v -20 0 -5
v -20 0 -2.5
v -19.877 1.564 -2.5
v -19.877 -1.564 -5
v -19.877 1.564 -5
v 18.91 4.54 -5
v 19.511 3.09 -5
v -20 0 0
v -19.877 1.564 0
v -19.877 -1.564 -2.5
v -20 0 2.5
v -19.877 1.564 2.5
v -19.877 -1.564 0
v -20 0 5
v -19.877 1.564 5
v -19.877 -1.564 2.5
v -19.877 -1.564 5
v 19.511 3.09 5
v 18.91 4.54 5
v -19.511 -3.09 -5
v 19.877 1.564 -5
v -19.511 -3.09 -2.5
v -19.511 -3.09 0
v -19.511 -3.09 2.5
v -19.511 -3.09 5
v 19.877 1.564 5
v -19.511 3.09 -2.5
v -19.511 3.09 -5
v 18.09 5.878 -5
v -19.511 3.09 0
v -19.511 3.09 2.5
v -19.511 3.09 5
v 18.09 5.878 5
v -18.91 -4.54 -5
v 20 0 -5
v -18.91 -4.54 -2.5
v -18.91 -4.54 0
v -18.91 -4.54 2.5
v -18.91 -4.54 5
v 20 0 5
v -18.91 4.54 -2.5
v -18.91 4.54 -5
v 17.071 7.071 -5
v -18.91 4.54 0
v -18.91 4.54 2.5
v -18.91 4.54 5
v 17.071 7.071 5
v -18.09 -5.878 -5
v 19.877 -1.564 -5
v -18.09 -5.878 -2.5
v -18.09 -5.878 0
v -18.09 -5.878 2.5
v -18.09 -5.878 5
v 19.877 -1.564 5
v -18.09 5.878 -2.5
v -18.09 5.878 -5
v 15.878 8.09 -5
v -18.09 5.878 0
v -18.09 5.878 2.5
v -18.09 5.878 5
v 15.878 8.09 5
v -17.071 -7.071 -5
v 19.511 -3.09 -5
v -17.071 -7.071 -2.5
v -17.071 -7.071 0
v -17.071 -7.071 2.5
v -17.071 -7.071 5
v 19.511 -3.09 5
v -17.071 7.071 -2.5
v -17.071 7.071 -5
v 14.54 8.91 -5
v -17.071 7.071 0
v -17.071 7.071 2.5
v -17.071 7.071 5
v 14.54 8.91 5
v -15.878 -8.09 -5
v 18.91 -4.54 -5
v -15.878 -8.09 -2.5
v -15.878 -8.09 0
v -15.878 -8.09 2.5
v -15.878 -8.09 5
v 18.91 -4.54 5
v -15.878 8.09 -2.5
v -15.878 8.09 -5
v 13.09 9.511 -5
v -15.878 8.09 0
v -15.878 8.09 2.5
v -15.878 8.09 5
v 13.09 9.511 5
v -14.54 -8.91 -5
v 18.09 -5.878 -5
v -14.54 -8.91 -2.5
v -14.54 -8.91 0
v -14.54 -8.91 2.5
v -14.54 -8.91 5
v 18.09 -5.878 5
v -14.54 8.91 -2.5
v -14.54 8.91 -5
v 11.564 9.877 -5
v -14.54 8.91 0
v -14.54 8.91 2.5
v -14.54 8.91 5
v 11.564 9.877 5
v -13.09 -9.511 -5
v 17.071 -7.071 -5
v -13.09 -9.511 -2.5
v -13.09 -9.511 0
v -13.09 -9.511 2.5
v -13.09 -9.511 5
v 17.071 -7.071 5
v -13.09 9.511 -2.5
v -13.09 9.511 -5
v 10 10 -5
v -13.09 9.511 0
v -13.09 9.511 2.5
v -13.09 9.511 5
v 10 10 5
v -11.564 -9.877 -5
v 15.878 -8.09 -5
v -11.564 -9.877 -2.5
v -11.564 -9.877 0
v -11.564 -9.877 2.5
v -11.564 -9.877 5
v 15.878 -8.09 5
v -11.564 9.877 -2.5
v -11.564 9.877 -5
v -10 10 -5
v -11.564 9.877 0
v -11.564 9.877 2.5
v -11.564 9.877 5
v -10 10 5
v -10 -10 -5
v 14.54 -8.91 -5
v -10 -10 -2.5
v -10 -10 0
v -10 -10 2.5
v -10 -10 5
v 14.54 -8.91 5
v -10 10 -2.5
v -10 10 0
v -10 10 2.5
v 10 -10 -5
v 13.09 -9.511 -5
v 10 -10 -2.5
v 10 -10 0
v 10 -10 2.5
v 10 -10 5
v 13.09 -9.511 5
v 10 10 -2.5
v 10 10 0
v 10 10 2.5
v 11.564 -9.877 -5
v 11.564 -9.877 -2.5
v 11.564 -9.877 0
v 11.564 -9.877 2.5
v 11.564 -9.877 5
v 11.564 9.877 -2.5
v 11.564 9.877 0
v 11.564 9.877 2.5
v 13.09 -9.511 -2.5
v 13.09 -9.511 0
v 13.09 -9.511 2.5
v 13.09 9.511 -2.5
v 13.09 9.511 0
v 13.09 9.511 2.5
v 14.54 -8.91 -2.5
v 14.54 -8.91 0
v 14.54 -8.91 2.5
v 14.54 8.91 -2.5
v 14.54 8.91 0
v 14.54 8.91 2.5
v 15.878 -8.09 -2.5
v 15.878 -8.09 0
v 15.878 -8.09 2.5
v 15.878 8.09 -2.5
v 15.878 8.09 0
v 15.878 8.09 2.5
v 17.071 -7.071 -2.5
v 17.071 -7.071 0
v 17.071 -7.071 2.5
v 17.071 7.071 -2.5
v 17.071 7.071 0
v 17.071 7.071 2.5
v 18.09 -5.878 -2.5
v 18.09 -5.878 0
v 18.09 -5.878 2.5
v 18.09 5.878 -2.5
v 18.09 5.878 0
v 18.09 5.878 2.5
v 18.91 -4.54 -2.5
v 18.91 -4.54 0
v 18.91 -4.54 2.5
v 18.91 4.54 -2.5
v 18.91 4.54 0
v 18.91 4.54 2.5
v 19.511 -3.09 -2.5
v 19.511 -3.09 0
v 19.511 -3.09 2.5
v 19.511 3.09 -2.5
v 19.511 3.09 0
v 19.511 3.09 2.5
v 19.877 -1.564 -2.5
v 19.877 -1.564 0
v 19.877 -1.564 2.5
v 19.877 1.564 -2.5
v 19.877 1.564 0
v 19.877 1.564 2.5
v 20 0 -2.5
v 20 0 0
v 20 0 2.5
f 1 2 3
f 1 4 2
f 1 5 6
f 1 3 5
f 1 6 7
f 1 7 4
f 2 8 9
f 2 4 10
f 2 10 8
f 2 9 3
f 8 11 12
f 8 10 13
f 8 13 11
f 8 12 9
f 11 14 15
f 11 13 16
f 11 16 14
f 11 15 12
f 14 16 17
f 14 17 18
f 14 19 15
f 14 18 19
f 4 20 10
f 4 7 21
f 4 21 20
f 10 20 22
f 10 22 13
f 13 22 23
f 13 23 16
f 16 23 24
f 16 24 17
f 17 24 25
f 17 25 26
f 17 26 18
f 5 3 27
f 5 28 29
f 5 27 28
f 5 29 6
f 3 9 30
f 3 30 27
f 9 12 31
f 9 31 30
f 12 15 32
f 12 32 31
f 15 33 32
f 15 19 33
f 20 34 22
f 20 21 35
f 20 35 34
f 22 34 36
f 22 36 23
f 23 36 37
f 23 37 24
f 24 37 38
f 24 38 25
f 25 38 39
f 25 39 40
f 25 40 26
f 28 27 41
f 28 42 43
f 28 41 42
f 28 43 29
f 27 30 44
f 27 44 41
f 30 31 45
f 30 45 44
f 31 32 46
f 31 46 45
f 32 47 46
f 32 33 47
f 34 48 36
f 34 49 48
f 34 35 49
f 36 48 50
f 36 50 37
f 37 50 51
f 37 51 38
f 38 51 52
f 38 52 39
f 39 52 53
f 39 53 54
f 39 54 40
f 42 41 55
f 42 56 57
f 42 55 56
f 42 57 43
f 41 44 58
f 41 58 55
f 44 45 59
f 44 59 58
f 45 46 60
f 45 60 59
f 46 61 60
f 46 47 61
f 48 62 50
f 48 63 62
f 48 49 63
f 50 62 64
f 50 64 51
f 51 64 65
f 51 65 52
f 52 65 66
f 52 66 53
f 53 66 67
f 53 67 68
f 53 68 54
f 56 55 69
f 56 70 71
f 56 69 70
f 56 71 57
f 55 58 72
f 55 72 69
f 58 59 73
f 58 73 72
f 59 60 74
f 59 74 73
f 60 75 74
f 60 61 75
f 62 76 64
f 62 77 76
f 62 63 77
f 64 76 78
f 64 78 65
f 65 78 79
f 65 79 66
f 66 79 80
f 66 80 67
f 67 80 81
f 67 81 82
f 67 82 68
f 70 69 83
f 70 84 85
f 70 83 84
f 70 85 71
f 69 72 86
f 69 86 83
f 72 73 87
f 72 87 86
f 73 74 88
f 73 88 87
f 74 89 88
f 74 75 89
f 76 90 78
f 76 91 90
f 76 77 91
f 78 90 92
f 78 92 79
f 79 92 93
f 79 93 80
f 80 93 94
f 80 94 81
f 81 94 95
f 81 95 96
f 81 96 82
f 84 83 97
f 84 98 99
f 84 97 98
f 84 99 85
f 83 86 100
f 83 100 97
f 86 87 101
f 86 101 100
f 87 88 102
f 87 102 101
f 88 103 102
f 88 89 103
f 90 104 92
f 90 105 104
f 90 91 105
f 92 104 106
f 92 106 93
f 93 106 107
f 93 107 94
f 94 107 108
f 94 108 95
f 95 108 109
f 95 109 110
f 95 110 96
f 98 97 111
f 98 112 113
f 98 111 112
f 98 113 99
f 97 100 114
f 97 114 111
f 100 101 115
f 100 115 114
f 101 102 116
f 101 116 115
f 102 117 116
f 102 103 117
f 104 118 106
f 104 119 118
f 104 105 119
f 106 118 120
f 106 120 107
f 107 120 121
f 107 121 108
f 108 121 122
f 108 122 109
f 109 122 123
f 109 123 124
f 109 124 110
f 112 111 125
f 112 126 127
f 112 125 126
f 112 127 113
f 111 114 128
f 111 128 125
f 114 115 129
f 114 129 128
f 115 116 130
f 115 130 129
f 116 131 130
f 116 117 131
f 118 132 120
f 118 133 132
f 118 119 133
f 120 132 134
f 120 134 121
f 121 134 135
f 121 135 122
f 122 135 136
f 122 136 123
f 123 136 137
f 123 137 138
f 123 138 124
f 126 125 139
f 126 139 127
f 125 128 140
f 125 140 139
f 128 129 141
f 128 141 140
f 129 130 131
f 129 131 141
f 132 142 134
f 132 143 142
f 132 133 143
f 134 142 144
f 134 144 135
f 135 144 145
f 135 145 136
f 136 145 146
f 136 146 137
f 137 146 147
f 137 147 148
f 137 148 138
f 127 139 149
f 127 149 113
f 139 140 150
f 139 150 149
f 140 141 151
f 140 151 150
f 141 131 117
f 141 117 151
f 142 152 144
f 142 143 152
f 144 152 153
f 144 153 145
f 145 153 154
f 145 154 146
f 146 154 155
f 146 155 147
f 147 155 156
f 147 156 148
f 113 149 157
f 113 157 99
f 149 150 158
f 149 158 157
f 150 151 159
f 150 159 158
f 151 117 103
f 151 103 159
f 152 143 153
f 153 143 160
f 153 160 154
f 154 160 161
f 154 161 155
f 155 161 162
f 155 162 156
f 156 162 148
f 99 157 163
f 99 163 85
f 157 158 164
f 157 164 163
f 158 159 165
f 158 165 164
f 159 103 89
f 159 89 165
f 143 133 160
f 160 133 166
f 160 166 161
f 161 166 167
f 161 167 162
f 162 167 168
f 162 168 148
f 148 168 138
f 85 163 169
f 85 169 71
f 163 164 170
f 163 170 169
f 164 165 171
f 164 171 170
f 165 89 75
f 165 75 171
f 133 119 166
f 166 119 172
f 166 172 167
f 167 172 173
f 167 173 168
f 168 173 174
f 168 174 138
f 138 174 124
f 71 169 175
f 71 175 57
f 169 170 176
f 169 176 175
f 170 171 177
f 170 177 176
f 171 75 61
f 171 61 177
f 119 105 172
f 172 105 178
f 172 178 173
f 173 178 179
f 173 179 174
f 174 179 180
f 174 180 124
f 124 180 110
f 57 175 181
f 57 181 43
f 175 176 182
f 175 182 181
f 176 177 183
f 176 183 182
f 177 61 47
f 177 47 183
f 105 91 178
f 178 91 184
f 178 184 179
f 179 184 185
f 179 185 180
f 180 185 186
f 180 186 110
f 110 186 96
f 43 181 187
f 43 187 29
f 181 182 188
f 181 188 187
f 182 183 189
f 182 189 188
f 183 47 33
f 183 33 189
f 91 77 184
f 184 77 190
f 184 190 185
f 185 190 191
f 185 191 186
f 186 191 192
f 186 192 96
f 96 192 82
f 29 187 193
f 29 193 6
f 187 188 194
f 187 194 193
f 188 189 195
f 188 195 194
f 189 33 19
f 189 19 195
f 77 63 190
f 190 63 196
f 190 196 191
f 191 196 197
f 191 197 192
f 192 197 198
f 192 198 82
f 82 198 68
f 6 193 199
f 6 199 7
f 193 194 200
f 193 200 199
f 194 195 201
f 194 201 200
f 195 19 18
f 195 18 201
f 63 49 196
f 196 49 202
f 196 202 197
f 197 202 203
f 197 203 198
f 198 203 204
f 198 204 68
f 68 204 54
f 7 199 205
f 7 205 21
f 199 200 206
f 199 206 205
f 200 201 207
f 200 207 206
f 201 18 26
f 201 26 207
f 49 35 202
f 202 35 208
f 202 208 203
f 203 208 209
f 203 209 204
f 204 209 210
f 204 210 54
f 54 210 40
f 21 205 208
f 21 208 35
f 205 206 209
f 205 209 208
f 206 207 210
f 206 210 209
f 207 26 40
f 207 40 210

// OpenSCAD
// Start: lazy_union
default_5_default_5();
// End: lazy_union

// Modules.

// 'PartMaterial undef-default - default 5.0'
module default_5_default_5() {
  // 'None : _combine_solids_and_holes'
  union() {
    // 'default : _combine_solids_and_holes'
    union() {
      // 'cage'
      %multmatrix(m=[[1.0, 0.0, 0.0, -20.0], [0.0, 1.0, 0.0, -10.0], [0.0, 0.0, 1.0, -5.0], [0.0, 0.0, 0.0, 1.0]]) {
        // 'cage'
        color(c=[0.0, 1.0, 0.35, 0.4]) {
          // 'cage : _combine_solids_and_holes'
          union() {
            // 'cage'
            cube(size=[40.0, 20.0, 10.0]);
          }
        }
      }
      // 'stadium'
      multmatrix(m=[[-1.0, 0.0, 0.0, 20.0], [0.0, -1.0, 0.0, 0.0], [0.0, 0.0, 1.0, -5.0], [0.0, 0.0, 0.0, 1.0]]) {
        // 'stadium : _combine_solids_and_holes'
        union() {
          // 'stadium'
          linear_extrude(height=10.0, twist=0.0, slices=4, scale=[1.0, 1.0]) {
            polygon(points=[[10.0, 10.0], [30.0, 10.0], [31.564344650402308, 9.876883405951379], [33.09016994374947, 9.510565162951536], [34.53990499739547, 8.910065241883679], [35.877852522924734, 8.090169943749476], [37.071067811865476, 7.071067811865476], [38.09016994374947, 5.877852522924733], [38.91006524188368, 4.539904997395469], [39.510565162951536, 3.090169943749473], [39.876883405951375, 1.564344650402308], [40.0, 2.6938527755071576e-16], [39.876883405951375, -1.5643446504023086], [39.510565162951536, -3.090169943749474], [38.91006524188368, -4.5399049973954675], [38.09016994374947, -5.877852522924731], [37.071067811865476, -7.0710678118654755], [35.877852522924734, -8.090169943749475], [34.53990499739547, -8.910065241883679], [33.09016994374947, -9.510565162951538], [31.564344650402308, -9.87688340595138], [30.0, -10.000000000000004], [10.0, -10.000000000000014], [8.43565534959769, -9.876883405951393], [6.909830056250522, -9.51056516295155], [5.460095002604529, -8.910065241883695], [4.122147477075264, -8.090169943749489], [2.9289321881345165, -7.071067811865487], [1.9098300562505202, -5.8778525229247425], [1.0899347581163177, -4.53990499739548], [0.48943483704845825, -3.090169943749478], [0.12311659404861963, -1.564344650402313], [0.0, -5.442372826717566e-15], [0.12311659404862496, 1.564344650402305], [0.48943483704846713, 3.090169943749473], [1.0899347581163266, 4.539904997395464], [1.9098300562505308, 5.8778525229247265], [2.9289321881345307, 7.071067811865471], [4.1221474770752735, 8.090169943749471], [5.460095002604534, 8.910065241883675], [6.909830056250528, 9.510565162951533], [8.435655349597694, 9.876883405951377]]);
          }
        }
      }
    }
  }
} // end module default_5_default_5
